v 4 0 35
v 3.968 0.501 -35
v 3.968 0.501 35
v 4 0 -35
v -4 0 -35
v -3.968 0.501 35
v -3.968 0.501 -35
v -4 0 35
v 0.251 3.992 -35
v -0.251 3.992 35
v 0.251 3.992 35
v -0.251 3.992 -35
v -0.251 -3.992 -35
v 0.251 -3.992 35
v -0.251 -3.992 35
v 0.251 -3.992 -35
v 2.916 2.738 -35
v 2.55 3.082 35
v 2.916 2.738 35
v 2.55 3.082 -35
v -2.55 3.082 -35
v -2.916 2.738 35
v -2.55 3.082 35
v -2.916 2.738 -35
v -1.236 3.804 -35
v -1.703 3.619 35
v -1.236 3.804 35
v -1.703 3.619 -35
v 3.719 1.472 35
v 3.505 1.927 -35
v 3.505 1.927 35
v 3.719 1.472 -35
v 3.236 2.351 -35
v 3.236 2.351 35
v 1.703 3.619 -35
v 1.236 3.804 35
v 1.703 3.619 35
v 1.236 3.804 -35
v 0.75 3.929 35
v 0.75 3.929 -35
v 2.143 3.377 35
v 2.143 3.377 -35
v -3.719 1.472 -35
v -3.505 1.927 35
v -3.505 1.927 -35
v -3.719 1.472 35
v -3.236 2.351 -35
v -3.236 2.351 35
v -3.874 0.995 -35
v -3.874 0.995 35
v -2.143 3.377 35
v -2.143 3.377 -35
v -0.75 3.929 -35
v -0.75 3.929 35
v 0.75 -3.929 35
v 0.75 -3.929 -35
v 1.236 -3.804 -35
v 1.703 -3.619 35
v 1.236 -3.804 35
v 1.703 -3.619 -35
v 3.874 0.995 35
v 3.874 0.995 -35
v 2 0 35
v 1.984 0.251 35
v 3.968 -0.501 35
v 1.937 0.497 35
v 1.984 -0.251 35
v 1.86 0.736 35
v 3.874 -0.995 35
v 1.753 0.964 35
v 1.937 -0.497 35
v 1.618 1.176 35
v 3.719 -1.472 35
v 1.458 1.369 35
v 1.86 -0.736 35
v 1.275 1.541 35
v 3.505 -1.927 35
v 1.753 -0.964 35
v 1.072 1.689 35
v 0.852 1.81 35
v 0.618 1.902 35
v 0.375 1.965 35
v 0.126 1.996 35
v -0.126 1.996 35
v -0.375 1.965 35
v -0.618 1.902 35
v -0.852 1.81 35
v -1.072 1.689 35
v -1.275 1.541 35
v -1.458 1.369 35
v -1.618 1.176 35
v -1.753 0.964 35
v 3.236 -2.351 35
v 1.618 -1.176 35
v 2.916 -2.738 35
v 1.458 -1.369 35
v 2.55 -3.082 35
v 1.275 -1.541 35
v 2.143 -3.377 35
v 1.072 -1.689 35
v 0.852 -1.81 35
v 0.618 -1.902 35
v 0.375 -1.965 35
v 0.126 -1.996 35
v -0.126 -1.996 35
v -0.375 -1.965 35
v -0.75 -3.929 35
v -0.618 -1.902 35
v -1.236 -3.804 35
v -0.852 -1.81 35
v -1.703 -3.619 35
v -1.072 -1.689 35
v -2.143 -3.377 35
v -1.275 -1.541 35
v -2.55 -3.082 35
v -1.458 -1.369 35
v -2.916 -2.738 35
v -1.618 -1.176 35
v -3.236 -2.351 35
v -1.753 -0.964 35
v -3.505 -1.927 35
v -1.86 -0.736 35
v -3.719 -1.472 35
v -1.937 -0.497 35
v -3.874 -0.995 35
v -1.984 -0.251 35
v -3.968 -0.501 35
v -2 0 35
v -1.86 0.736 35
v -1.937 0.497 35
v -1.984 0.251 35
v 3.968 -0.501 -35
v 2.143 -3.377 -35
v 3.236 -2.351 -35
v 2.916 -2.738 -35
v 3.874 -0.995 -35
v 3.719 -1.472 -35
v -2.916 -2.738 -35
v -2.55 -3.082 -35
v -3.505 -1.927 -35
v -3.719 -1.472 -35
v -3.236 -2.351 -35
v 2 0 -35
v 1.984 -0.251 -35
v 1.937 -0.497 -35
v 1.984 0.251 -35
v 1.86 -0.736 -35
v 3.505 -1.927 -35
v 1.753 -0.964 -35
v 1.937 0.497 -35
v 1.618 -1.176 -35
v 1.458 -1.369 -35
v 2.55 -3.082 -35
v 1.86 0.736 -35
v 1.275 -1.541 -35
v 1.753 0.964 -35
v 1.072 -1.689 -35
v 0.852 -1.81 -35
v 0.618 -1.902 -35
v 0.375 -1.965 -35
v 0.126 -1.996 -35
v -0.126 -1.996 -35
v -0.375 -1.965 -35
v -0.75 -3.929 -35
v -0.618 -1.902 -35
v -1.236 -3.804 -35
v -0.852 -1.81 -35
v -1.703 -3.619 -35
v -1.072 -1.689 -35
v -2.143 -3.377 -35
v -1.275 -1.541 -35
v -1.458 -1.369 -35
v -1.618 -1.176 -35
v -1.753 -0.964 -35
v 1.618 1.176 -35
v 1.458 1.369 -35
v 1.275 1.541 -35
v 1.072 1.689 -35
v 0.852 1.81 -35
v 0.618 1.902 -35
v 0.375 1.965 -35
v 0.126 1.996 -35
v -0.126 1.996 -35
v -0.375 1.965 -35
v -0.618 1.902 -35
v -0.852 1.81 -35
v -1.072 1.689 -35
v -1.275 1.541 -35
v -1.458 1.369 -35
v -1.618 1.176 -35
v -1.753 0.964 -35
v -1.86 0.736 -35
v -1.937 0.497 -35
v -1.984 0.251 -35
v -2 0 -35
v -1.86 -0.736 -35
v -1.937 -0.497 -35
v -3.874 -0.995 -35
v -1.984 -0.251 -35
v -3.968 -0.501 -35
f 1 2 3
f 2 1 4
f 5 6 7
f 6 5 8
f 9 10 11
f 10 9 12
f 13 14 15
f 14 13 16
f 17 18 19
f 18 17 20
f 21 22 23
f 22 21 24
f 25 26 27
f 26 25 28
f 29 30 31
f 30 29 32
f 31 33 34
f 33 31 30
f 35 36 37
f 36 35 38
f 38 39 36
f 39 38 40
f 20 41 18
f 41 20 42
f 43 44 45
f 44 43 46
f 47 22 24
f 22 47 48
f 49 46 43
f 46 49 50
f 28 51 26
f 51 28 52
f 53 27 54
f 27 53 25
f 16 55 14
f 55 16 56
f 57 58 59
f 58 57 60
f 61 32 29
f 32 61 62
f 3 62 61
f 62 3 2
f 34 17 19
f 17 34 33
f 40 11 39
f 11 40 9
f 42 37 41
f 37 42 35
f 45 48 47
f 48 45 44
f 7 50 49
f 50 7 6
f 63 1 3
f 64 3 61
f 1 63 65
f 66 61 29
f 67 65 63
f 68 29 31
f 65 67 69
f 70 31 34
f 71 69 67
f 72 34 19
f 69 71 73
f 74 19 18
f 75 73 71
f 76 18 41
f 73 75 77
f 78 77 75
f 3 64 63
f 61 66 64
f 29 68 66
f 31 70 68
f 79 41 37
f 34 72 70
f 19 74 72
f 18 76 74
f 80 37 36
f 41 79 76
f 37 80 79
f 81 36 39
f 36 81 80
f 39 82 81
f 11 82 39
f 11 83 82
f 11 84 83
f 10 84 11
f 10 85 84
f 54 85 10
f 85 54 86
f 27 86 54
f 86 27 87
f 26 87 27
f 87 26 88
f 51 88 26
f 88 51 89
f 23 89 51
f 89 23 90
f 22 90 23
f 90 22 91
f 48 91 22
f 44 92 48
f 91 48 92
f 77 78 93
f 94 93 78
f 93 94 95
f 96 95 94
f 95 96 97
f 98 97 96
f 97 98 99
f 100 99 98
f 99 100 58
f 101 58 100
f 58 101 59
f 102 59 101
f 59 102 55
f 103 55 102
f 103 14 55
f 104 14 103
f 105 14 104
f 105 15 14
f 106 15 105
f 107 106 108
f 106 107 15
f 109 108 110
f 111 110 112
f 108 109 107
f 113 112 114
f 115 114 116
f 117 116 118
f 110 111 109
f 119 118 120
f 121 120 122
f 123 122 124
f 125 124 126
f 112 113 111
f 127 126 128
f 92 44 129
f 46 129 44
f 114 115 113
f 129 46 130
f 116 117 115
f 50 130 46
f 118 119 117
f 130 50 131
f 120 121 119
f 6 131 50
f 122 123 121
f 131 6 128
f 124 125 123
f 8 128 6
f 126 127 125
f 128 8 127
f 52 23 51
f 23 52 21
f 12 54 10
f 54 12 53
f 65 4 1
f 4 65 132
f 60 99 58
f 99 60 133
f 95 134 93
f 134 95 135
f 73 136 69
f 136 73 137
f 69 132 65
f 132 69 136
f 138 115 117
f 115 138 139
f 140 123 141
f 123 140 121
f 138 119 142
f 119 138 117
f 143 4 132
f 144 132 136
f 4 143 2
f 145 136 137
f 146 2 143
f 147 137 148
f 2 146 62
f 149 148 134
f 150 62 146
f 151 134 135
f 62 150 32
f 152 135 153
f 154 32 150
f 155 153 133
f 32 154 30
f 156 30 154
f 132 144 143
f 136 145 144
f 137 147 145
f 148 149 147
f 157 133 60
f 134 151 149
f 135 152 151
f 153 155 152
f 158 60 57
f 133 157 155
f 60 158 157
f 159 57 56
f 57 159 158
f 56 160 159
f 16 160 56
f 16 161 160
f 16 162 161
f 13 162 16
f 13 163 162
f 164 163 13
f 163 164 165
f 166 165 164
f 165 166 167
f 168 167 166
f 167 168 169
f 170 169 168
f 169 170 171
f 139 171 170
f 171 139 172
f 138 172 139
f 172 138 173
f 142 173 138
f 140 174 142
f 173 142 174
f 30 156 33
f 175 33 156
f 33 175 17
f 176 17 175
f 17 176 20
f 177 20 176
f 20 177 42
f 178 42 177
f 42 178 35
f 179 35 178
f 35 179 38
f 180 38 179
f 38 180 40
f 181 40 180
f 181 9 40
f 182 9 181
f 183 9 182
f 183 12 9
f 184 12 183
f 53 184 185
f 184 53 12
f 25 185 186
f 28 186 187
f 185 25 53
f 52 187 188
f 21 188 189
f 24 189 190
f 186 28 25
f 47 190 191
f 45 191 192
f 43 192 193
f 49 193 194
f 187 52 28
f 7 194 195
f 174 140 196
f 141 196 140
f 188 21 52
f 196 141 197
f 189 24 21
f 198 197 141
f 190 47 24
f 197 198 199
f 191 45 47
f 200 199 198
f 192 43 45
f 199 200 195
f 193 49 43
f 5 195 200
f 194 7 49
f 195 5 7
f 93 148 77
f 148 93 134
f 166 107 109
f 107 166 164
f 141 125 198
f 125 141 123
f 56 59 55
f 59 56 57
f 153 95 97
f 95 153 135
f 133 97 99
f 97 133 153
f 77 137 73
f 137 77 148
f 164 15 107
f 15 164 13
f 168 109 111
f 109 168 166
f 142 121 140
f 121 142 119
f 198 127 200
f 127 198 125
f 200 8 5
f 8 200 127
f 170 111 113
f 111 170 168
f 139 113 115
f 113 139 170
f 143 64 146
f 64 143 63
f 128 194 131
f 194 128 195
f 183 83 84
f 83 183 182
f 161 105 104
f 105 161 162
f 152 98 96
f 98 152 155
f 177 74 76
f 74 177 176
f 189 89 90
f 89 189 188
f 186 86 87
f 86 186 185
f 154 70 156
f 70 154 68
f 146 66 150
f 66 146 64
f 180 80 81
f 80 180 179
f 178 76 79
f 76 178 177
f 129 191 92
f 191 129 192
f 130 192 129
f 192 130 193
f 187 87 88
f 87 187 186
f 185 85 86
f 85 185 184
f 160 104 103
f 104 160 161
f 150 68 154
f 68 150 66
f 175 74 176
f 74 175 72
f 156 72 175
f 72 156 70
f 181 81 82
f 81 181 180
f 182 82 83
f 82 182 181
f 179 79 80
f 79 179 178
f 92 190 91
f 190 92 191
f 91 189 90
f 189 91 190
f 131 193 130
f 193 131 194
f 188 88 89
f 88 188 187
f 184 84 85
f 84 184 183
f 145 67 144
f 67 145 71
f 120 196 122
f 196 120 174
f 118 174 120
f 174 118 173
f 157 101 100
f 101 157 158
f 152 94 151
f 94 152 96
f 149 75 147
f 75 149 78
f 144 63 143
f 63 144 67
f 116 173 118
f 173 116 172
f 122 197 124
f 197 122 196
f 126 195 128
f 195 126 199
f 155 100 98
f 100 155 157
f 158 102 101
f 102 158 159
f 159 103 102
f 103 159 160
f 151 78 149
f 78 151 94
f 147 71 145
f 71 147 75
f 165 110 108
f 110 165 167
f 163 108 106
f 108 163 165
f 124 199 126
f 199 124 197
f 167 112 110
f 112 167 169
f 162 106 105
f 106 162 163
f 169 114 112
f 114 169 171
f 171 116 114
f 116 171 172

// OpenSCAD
$fn = 50;


difference() {
	union() {
		translate(v = [0, 0, -35.0000000000]) {
			cylinder(h = 70, r = 4.0000000000);
		}
	}
	union() {
		translate(v = [0, 0, -100.0000000000]) {
			cylinder(h = 200, r = 2);
		}
	}
}
